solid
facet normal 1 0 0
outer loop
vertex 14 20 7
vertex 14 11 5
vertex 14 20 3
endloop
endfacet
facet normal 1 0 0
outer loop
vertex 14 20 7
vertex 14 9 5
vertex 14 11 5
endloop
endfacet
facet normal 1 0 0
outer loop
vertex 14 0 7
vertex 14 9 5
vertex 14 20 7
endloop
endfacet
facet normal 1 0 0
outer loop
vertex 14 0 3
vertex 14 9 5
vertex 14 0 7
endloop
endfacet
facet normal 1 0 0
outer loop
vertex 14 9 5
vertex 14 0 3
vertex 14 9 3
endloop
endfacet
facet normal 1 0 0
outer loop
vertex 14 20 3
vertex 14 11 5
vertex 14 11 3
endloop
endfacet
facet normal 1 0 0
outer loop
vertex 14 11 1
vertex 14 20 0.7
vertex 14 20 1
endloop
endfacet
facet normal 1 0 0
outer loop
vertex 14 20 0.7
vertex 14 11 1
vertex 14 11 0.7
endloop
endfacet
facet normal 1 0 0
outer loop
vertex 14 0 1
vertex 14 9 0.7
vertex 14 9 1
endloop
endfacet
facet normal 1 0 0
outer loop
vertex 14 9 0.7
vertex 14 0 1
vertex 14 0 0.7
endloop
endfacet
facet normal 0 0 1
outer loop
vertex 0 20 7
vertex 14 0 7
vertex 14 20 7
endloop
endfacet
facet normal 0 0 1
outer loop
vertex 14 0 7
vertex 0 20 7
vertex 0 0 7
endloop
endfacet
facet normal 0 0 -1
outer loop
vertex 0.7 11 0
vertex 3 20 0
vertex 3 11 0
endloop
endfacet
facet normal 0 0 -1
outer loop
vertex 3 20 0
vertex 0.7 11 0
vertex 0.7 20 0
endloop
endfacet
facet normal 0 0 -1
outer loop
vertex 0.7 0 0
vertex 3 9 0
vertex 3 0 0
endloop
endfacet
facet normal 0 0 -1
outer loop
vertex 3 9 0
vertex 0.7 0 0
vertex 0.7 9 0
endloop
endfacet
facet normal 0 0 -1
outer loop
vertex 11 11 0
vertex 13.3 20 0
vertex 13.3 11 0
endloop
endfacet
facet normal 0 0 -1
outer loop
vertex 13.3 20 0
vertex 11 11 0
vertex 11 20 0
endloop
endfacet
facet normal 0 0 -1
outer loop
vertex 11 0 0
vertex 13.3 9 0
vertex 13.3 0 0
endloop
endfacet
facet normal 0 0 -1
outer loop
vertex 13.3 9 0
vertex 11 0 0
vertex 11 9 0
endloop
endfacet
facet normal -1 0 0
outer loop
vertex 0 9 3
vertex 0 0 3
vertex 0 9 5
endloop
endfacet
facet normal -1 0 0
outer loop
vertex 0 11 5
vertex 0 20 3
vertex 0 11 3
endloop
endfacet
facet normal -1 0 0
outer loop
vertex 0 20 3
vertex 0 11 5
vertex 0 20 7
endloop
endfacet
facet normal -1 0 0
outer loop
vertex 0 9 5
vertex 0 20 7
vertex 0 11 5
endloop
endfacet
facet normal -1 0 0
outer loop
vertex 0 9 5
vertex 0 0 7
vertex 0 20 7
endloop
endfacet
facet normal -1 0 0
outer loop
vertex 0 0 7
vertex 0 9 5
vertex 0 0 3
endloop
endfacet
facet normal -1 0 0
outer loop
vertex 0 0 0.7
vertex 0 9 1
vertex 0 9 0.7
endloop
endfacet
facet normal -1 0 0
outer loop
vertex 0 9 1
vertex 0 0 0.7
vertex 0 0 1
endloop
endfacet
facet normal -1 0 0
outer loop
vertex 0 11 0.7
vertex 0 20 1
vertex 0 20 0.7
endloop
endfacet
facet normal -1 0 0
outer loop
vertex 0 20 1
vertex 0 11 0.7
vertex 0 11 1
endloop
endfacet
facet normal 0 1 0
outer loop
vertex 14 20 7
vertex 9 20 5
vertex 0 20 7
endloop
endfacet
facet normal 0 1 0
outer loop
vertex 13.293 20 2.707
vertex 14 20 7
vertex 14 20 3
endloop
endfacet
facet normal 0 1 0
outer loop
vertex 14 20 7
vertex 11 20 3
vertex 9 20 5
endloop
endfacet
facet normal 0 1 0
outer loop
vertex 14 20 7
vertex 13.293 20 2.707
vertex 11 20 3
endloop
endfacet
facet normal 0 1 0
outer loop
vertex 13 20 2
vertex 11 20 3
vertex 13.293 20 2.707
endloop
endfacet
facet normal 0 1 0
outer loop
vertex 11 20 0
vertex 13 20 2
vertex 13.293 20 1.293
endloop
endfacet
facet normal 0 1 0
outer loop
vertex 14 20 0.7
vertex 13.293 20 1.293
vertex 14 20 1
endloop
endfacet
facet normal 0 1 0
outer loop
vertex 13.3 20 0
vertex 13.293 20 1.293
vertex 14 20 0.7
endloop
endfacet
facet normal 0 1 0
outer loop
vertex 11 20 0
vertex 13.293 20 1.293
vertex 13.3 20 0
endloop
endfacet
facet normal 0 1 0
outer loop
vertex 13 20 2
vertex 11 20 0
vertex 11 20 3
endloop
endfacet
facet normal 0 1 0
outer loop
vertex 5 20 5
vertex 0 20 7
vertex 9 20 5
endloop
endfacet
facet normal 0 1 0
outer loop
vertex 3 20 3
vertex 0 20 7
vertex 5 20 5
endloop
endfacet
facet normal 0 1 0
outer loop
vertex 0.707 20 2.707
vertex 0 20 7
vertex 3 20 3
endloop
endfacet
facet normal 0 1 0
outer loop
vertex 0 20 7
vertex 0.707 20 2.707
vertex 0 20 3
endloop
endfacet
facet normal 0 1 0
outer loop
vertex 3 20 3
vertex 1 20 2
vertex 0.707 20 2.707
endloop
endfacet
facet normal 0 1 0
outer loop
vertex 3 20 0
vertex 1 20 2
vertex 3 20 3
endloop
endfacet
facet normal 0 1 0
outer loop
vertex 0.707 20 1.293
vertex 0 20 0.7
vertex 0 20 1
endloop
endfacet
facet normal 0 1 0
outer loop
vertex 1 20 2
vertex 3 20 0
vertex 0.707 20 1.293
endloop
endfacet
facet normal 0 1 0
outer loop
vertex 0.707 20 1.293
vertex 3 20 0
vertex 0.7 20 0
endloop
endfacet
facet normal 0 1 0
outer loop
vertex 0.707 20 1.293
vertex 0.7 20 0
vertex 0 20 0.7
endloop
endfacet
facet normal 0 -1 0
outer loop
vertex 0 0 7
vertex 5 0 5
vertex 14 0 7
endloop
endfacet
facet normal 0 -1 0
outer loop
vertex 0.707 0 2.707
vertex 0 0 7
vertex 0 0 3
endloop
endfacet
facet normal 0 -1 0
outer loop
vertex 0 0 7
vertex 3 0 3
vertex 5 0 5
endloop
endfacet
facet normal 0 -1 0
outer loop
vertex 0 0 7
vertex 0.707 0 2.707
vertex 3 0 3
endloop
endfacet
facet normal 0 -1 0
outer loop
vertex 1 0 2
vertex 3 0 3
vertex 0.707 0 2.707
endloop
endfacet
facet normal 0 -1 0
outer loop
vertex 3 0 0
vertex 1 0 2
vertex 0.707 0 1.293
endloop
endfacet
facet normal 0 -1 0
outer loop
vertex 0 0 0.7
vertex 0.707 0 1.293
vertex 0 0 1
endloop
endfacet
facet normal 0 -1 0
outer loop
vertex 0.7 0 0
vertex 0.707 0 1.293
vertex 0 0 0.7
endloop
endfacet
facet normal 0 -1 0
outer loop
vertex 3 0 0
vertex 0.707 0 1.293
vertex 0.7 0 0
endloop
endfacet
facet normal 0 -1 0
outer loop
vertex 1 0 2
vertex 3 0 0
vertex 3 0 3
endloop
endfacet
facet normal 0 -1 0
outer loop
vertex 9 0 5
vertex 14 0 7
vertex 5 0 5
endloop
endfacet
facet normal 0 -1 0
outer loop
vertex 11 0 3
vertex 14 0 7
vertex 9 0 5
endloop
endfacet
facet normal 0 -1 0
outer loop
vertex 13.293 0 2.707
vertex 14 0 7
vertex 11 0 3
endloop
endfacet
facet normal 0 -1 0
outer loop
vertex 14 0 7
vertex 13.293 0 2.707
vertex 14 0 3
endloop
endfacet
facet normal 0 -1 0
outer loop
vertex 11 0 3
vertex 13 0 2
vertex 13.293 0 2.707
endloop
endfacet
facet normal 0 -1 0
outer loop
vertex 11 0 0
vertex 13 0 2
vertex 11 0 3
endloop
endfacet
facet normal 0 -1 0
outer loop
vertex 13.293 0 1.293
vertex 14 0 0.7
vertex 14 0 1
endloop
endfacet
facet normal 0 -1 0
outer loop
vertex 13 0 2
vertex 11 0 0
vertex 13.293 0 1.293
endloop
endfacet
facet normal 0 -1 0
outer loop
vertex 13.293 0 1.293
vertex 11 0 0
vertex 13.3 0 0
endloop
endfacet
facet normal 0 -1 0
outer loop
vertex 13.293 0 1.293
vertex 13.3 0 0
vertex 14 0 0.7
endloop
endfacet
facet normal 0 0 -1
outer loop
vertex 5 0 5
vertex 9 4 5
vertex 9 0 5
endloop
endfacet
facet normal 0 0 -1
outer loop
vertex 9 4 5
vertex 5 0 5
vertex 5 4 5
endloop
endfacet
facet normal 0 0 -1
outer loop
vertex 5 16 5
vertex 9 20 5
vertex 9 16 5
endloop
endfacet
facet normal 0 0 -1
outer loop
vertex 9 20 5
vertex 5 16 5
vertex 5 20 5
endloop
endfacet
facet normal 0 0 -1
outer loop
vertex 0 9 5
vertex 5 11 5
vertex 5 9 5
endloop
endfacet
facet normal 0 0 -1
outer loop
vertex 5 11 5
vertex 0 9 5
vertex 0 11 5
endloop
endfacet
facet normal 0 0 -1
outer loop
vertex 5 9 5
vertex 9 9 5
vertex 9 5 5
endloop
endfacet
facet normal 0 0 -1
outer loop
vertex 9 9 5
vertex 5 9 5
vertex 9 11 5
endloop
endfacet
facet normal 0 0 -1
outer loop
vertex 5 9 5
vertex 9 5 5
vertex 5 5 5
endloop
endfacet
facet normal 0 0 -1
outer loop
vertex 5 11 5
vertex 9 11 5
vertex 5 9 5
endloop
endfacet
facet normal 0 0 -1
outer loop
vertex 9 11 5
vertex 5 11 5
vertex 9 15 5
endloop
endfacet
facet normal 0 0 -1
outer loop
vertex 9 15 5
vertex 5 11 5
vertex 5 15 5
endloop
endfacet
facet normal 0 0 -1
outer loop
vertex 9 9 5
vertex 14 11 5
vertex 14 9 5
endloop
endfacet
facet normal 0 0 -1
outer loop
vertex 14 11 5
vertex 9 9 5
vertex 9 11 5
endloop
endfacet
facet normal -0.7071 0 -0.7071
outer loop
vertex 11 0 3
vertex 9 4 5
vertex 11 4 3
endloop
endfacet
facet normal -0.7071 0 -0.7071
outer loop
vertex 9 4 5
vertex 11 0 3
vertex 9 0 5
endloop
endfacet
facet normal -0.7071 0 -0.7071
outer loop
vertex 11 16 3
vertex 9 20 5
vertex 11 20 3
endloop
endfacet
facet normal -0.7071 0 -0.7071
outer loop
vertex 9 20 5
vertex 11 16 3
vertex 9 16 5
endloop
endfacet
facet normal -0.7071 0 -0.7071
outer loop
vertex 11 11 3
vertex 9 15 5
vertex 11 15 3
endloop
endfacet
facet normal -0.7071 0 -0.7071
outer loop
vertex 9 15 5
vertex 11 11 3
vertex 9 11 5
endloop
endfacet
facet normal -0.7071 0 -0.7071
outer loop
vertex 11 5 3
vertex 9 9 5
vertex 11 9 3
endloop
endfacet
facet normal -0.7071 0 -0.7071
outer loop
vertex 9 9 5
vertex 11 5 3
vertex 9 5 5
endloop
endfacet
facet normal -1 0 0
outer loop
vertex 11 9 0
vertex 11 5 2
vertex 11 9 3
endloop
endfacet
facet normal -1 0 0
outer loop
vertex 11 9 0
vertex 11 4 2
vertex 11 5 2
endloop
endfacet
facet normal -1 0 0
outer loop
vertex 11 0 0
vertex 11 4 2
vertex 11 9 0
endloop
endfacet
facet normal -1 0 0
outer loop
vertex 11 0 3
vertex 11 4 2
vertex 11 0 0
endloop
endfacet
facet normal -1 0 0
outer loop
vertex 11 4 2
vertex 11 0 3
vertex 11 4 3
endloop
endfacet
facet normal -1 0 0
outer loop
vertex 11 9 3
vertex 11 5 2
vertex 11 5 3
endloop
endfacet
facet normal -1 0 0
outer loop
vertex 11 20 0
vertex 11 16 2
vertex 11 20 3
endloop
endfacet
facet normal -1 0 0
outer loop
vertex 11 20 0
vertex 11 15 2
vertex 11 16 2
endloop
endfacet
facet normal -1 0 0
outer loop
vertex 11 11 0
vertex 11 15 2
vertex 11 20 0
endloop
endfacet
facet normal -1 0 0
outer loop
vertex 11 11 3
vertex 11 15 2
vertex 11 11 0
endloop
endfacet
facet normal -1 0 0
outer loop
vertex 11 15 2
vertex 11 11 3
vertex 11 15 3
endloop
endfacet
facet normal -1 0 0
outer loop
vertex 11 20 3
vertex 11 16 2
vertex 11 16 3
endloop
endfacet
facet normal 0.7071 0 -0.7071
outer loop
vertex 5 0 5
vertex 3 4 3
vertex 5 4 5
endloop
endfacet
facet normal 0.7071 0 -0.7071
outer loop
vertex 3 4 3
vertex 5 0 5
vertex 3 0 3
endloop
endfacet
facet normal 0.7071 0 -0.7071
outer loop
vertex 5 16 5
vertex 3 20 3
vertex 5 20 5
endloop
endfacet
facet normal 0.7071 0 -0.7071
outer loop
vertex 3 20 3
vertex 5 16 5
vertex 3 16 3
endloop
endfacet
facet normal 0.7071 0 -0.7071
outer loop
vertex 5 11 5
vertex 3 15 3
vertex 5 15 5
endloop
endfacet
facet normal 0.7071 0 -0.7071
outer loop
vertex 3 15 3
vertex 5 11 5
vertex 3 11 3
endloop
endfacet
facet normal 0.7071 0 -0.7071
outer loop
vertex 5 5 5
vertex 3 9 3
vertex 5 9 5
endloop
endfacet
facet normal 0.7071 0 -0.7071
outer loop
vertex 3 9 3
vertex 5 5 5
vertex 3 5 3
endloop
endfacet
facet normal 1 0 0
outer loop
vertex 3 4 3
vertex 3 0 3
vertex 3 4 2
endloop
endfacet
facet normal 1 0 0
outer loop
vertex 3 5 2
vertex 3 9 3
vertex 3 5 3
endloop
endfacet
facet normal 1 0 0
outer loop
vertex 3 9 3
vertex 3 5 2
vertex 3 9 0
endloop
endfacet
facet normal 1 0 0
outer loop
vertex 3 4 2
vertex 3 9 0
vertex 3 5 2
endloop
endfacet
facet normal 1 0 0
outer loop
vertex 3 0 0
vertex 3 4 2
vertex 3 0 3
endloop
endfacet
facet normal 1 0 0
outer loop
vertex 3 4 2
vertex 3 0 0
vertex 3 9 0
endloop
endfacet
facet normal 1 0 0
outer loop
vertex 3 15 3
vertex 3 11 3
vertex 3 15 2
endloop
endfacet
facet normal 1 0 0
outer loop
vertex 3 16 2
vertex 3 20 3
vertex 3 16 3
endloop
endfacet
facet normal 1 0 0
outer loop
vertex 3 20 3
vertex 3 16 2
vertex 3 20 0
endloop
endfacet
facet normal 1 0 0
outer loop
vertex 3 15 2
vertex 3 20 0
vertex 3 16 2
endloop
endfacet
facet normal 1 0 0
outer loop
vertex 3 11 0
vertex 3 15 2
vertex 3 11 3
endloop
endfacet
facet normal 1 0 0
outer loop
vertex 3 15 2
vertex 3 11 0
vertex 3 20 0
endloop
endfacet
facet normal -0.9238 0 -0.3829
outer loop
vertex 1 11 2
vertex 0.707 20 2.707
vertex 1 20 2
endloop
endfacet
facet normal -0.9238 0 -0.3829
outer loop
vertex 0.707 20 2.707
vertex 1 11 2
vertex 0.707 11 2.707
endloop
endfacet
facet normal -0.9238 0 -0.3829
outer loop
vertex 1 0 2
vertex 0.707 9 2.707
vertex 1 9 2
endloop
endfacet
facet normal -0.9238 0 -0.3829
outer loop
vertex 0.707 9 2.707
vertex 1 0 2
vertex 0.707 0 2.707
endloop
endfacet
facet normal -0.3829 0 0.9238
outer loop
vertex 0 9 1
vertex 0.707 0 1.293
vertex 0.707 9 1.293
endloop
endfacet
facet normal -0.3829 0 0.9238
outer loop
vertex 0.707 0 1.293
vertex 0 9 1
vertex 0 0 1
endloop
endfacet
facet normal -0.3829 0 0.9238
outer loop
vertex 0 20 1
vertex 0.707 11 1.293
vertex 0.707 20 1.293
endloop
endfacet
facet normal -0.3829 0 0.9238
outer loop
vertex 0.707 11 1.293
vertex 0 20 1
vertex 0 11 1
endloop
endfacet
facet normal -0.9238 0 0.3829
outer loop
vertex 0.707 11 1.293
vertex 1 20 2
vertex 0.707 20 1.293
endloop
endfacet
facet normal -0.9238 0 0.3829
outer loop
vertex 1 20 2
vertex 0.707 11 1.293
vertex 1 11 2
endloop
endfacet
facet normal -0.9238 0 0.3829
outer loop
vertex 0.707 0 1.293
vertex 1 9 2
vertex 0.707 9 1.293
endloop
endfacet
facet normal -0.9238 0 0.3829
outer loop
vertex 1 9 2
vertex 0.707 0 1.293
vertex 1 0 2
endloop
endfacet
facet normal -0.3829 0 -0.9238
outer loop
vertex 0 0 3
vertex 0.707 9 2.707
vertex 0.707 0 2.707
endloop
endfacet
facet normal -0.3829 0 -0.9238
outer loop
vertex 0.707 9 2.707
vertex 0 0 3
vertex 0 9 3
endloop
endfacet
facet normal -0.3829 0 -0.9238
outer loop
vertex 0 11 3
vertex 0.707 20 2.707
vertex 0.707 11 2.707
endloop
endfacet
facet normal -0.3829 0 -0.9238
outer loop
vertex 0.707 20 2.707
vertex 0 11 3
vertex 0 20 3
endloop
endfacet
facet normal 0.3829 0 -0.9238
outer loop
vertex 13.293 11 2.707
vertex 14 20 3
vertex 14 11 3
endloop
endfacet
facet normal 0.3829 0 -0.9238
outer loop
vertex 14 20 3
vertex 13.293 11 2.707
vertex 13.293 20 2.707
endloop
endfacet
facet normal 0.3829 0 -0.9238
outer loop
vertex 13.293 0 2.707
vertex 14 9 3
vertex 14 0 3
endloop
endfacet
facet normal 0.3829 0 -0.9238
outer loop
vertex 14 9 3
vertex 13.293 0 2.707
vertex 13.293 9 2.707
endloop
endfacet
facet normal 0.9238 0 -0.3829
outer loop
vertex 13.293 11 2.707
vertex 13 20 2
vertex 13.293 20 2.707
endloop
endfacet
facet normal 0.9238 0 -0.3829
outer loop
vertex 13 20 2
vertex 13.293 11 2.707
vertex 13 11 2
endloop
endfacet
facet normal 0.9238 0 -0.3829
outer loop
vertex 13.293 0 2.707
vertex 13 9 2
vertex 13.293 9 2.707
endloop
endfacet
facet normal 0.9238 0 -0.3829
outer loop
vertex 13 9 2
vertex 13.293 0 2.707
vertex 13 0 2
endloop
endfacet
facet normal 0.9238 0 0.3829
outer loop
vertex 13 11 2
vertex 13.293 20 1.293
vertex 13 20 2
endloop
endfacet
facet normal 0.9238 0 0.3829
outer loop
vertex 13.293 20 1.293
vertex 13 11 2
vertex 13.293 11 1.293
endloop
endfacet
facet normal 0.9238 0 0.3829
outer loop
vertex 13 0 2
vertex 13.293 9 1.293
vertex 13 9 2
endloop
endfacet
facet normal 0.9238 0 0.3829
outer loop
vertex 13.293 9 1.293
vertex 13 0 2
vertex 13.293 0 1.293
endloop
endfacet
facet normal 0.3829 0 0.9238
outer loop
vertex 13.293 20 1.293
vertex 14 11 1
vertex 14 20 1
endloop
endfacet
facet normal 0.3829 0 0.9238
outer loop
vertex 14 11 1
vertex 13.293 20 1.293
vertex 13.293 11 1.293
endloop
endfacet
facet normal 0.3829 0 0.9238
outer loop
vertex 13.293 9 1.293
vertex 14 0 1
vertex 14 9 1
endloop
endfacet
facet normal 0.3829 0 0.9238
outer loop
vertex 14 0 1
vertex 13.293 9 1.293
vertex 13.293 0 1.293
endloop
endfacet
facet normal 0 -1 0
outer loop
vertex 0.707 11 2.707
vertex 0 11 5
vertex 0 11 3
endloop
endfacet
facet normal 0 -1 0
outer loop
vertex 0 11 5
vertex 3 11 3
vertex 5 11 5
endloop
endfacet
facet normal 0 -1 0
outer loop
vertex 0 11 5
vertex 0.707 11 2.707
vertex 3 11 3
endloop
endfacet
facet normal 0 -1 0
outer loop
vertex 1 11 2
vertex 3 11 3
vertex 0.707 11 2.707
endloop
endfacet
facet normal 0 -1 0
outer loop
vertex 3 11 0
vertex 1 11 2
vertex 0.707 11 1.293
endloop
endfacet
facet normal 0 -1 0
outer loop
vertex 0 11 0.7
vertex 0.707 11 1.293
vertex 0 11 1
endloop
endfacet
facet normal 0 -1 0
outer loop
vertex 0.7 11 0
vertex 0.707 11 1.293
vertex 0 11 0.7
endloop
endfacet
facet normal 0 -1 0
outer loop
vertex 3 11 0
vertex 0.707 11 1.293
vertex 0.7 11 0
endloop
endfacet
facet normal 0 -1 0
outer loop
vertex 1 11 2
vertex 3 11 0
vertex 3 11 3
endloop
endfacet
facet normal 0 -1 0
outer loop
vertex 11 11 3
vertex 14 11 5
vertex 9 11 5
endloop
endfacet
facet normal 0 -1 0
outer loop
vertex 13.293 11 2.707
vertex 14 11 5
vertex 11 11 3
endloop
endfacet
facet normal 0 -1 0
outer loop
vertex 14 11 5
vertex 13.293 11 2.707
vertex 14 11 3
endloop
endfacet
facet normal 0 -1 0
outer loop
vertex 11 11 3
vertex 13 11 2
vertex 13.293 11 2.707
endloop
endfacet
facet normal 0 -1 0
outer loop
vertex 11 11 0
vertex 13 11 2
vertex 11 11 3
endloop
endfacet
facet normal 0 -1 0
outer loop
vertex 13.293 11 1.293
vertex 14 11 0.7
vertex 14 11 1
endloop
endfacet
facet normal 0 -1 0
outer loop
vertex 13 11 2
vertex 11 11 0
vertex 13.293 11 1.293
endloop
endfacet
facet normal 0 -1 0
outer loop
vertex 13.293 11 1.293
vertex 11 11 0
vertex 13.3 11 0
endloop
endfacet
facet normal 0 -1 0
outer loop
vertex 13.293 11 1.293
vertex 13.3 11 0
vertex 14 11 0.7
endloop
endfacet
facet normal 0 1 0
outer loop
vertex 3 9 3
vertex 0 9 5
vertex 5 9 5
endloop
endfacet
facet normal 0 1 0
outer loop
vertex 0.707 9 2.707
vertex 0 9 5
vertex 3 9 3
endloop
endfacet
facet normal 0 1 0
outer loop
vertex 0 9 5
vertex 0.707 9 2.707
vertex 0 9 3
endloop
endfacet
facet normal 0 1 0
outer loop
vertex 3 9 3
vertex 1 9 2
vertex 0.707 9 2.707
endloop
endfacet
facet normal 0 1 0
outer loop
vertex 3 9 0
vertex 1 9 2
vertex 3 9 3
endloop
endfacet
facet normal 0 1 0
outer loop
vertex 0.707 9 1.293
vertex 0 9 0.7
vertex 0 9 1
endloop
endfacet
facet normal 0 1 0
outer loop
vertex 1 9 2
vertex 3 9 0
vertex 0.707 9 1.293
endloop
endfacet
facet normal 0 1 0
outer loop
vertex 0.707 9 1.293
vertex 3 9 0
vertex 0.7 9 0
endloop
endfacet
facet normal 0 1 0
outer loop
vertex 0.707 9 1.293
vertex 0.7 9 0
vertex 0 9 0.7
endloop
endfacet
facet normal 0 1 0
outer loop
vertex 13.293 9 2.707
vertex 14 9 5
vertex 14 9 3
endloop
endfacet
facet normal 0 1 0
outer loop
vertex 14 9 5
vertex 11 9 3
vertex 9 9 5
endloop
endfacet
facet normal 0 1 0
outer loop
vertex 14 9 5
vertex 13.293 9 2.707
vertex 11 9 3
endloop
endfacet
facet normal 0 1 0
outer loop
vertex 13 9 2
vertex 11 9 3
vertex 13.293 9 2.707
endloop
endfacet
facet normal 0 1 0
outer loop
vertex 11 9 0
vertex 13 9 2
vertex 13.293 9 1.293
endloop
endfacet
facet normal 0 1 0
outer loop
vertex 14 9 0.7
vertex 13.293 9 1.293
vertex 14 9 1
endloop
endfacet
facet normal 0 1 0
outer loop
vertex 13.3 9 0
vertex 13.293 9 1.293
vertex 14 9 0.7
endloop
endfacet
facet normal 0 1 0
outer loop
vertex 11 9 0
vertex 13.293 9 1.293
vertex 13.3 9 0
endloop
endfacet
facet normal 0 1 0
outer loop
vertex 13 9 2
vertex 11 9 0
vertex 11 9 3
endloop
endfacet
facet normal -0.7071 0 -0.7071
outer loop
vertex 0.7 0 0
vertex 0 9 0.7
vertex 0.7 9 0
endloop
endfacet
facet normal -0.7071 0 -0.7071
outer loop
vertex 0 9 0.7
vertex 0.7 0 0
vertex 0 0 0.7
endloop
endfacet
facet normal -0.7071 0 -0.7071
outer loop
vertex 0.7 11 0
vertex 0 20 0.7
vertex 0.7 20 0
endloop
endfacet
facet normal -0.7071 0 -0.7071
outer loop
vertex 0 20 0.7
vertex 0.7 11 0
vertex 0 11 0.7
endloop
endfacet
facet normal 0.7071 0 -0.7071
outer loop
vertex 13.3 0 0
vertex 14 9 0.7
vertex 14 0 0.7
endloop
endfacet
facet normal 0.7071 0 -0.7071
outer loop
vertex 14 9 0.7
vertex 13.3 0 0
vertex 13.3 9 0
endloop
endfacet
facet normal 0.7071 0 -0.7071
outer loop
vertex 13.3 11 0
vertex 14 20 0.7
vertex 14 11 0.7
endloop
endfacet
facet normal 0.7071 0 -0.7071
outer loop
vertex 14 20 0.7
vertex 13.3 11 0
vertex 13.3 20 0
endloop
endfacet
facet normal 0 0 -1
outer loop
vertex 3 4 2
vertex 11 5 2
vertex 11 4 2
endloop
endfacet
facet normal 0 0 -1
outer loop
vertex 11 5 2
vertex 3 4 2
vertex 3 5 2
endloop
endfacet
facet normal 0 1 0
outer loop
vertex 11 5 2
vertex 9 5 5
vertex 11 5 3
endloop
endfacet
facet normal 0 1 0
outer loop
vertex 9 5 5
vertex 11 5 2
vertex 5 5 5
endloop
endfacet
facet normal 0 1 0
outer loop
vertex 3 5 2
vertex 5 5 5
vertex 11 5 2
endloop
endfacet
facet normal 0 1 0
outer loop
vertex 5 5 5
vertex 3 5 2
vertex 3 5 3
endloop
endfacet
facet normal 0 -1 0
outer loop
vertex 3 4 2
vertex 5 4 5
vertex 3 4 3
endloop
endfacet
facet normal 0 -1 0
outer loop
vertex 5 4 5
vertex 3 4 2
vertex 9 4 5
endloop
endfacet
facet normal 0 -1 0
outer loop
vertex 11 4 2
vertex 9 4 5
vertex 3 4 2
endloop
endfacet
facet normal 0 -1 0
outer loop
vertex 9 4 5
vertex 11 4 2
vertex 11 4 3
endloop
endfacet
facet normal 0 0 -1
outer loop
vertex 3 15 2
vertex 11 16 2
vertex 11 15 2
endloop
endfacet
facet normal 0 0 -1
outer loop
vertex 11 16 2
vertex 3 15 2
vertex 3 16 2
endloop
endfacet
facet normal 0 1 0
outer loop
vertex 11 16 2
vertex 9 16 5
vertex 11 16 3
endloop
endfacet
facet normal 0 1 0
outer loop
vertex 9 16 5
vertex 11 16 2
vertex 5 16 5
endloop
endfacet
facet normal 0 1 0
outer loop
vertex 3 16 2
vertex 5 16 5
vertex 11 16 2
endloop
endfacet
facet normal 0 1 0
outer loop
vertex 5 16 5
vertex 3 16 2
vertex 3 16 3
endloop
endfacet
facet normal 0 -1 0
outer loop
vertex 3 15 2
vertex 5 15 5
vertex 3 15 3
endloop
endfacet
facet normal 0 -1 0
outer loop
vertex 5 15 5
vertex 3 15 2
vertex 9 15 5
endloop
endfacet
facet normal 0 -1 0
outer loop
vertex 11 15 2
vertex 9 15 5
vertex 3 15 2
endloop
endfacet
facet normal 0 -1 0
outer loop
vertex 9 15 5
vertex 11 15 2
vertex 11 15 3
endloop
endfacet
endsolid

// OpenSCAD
union() {
    difference() {
        cube([14,20,7]);
        translate([3,0,0]) hull() {
            translate([0,0,0]) cube([8,20,3]);
            translate([2,0,0]) cube([4,20,5]);
        }
        
        translate([0,0,2]) rotate([90,0,0]) cylinder(h=50, d=2, center=true, $fn=8);
        translate([14,0,2]) rotate([90,0,0]) cylinder(h=50, d=2, center=true, $fn=8);
        
        translate([0,9,0]) cube([14,2,5]);
        
        translate([0,0,0]) rotate([90,0,0]) cylinder(h=50, d=1.4, center=true, $fn=4);
        translate([14,0,0]) rotate([90,0,0]) cylinder(h=50, d=1.4, center=true, $fn=4);

    }
    translate([3,4,2]) cube([8,1,5]);
    translate([3,15,2]) cube([8,1,5]);
}
